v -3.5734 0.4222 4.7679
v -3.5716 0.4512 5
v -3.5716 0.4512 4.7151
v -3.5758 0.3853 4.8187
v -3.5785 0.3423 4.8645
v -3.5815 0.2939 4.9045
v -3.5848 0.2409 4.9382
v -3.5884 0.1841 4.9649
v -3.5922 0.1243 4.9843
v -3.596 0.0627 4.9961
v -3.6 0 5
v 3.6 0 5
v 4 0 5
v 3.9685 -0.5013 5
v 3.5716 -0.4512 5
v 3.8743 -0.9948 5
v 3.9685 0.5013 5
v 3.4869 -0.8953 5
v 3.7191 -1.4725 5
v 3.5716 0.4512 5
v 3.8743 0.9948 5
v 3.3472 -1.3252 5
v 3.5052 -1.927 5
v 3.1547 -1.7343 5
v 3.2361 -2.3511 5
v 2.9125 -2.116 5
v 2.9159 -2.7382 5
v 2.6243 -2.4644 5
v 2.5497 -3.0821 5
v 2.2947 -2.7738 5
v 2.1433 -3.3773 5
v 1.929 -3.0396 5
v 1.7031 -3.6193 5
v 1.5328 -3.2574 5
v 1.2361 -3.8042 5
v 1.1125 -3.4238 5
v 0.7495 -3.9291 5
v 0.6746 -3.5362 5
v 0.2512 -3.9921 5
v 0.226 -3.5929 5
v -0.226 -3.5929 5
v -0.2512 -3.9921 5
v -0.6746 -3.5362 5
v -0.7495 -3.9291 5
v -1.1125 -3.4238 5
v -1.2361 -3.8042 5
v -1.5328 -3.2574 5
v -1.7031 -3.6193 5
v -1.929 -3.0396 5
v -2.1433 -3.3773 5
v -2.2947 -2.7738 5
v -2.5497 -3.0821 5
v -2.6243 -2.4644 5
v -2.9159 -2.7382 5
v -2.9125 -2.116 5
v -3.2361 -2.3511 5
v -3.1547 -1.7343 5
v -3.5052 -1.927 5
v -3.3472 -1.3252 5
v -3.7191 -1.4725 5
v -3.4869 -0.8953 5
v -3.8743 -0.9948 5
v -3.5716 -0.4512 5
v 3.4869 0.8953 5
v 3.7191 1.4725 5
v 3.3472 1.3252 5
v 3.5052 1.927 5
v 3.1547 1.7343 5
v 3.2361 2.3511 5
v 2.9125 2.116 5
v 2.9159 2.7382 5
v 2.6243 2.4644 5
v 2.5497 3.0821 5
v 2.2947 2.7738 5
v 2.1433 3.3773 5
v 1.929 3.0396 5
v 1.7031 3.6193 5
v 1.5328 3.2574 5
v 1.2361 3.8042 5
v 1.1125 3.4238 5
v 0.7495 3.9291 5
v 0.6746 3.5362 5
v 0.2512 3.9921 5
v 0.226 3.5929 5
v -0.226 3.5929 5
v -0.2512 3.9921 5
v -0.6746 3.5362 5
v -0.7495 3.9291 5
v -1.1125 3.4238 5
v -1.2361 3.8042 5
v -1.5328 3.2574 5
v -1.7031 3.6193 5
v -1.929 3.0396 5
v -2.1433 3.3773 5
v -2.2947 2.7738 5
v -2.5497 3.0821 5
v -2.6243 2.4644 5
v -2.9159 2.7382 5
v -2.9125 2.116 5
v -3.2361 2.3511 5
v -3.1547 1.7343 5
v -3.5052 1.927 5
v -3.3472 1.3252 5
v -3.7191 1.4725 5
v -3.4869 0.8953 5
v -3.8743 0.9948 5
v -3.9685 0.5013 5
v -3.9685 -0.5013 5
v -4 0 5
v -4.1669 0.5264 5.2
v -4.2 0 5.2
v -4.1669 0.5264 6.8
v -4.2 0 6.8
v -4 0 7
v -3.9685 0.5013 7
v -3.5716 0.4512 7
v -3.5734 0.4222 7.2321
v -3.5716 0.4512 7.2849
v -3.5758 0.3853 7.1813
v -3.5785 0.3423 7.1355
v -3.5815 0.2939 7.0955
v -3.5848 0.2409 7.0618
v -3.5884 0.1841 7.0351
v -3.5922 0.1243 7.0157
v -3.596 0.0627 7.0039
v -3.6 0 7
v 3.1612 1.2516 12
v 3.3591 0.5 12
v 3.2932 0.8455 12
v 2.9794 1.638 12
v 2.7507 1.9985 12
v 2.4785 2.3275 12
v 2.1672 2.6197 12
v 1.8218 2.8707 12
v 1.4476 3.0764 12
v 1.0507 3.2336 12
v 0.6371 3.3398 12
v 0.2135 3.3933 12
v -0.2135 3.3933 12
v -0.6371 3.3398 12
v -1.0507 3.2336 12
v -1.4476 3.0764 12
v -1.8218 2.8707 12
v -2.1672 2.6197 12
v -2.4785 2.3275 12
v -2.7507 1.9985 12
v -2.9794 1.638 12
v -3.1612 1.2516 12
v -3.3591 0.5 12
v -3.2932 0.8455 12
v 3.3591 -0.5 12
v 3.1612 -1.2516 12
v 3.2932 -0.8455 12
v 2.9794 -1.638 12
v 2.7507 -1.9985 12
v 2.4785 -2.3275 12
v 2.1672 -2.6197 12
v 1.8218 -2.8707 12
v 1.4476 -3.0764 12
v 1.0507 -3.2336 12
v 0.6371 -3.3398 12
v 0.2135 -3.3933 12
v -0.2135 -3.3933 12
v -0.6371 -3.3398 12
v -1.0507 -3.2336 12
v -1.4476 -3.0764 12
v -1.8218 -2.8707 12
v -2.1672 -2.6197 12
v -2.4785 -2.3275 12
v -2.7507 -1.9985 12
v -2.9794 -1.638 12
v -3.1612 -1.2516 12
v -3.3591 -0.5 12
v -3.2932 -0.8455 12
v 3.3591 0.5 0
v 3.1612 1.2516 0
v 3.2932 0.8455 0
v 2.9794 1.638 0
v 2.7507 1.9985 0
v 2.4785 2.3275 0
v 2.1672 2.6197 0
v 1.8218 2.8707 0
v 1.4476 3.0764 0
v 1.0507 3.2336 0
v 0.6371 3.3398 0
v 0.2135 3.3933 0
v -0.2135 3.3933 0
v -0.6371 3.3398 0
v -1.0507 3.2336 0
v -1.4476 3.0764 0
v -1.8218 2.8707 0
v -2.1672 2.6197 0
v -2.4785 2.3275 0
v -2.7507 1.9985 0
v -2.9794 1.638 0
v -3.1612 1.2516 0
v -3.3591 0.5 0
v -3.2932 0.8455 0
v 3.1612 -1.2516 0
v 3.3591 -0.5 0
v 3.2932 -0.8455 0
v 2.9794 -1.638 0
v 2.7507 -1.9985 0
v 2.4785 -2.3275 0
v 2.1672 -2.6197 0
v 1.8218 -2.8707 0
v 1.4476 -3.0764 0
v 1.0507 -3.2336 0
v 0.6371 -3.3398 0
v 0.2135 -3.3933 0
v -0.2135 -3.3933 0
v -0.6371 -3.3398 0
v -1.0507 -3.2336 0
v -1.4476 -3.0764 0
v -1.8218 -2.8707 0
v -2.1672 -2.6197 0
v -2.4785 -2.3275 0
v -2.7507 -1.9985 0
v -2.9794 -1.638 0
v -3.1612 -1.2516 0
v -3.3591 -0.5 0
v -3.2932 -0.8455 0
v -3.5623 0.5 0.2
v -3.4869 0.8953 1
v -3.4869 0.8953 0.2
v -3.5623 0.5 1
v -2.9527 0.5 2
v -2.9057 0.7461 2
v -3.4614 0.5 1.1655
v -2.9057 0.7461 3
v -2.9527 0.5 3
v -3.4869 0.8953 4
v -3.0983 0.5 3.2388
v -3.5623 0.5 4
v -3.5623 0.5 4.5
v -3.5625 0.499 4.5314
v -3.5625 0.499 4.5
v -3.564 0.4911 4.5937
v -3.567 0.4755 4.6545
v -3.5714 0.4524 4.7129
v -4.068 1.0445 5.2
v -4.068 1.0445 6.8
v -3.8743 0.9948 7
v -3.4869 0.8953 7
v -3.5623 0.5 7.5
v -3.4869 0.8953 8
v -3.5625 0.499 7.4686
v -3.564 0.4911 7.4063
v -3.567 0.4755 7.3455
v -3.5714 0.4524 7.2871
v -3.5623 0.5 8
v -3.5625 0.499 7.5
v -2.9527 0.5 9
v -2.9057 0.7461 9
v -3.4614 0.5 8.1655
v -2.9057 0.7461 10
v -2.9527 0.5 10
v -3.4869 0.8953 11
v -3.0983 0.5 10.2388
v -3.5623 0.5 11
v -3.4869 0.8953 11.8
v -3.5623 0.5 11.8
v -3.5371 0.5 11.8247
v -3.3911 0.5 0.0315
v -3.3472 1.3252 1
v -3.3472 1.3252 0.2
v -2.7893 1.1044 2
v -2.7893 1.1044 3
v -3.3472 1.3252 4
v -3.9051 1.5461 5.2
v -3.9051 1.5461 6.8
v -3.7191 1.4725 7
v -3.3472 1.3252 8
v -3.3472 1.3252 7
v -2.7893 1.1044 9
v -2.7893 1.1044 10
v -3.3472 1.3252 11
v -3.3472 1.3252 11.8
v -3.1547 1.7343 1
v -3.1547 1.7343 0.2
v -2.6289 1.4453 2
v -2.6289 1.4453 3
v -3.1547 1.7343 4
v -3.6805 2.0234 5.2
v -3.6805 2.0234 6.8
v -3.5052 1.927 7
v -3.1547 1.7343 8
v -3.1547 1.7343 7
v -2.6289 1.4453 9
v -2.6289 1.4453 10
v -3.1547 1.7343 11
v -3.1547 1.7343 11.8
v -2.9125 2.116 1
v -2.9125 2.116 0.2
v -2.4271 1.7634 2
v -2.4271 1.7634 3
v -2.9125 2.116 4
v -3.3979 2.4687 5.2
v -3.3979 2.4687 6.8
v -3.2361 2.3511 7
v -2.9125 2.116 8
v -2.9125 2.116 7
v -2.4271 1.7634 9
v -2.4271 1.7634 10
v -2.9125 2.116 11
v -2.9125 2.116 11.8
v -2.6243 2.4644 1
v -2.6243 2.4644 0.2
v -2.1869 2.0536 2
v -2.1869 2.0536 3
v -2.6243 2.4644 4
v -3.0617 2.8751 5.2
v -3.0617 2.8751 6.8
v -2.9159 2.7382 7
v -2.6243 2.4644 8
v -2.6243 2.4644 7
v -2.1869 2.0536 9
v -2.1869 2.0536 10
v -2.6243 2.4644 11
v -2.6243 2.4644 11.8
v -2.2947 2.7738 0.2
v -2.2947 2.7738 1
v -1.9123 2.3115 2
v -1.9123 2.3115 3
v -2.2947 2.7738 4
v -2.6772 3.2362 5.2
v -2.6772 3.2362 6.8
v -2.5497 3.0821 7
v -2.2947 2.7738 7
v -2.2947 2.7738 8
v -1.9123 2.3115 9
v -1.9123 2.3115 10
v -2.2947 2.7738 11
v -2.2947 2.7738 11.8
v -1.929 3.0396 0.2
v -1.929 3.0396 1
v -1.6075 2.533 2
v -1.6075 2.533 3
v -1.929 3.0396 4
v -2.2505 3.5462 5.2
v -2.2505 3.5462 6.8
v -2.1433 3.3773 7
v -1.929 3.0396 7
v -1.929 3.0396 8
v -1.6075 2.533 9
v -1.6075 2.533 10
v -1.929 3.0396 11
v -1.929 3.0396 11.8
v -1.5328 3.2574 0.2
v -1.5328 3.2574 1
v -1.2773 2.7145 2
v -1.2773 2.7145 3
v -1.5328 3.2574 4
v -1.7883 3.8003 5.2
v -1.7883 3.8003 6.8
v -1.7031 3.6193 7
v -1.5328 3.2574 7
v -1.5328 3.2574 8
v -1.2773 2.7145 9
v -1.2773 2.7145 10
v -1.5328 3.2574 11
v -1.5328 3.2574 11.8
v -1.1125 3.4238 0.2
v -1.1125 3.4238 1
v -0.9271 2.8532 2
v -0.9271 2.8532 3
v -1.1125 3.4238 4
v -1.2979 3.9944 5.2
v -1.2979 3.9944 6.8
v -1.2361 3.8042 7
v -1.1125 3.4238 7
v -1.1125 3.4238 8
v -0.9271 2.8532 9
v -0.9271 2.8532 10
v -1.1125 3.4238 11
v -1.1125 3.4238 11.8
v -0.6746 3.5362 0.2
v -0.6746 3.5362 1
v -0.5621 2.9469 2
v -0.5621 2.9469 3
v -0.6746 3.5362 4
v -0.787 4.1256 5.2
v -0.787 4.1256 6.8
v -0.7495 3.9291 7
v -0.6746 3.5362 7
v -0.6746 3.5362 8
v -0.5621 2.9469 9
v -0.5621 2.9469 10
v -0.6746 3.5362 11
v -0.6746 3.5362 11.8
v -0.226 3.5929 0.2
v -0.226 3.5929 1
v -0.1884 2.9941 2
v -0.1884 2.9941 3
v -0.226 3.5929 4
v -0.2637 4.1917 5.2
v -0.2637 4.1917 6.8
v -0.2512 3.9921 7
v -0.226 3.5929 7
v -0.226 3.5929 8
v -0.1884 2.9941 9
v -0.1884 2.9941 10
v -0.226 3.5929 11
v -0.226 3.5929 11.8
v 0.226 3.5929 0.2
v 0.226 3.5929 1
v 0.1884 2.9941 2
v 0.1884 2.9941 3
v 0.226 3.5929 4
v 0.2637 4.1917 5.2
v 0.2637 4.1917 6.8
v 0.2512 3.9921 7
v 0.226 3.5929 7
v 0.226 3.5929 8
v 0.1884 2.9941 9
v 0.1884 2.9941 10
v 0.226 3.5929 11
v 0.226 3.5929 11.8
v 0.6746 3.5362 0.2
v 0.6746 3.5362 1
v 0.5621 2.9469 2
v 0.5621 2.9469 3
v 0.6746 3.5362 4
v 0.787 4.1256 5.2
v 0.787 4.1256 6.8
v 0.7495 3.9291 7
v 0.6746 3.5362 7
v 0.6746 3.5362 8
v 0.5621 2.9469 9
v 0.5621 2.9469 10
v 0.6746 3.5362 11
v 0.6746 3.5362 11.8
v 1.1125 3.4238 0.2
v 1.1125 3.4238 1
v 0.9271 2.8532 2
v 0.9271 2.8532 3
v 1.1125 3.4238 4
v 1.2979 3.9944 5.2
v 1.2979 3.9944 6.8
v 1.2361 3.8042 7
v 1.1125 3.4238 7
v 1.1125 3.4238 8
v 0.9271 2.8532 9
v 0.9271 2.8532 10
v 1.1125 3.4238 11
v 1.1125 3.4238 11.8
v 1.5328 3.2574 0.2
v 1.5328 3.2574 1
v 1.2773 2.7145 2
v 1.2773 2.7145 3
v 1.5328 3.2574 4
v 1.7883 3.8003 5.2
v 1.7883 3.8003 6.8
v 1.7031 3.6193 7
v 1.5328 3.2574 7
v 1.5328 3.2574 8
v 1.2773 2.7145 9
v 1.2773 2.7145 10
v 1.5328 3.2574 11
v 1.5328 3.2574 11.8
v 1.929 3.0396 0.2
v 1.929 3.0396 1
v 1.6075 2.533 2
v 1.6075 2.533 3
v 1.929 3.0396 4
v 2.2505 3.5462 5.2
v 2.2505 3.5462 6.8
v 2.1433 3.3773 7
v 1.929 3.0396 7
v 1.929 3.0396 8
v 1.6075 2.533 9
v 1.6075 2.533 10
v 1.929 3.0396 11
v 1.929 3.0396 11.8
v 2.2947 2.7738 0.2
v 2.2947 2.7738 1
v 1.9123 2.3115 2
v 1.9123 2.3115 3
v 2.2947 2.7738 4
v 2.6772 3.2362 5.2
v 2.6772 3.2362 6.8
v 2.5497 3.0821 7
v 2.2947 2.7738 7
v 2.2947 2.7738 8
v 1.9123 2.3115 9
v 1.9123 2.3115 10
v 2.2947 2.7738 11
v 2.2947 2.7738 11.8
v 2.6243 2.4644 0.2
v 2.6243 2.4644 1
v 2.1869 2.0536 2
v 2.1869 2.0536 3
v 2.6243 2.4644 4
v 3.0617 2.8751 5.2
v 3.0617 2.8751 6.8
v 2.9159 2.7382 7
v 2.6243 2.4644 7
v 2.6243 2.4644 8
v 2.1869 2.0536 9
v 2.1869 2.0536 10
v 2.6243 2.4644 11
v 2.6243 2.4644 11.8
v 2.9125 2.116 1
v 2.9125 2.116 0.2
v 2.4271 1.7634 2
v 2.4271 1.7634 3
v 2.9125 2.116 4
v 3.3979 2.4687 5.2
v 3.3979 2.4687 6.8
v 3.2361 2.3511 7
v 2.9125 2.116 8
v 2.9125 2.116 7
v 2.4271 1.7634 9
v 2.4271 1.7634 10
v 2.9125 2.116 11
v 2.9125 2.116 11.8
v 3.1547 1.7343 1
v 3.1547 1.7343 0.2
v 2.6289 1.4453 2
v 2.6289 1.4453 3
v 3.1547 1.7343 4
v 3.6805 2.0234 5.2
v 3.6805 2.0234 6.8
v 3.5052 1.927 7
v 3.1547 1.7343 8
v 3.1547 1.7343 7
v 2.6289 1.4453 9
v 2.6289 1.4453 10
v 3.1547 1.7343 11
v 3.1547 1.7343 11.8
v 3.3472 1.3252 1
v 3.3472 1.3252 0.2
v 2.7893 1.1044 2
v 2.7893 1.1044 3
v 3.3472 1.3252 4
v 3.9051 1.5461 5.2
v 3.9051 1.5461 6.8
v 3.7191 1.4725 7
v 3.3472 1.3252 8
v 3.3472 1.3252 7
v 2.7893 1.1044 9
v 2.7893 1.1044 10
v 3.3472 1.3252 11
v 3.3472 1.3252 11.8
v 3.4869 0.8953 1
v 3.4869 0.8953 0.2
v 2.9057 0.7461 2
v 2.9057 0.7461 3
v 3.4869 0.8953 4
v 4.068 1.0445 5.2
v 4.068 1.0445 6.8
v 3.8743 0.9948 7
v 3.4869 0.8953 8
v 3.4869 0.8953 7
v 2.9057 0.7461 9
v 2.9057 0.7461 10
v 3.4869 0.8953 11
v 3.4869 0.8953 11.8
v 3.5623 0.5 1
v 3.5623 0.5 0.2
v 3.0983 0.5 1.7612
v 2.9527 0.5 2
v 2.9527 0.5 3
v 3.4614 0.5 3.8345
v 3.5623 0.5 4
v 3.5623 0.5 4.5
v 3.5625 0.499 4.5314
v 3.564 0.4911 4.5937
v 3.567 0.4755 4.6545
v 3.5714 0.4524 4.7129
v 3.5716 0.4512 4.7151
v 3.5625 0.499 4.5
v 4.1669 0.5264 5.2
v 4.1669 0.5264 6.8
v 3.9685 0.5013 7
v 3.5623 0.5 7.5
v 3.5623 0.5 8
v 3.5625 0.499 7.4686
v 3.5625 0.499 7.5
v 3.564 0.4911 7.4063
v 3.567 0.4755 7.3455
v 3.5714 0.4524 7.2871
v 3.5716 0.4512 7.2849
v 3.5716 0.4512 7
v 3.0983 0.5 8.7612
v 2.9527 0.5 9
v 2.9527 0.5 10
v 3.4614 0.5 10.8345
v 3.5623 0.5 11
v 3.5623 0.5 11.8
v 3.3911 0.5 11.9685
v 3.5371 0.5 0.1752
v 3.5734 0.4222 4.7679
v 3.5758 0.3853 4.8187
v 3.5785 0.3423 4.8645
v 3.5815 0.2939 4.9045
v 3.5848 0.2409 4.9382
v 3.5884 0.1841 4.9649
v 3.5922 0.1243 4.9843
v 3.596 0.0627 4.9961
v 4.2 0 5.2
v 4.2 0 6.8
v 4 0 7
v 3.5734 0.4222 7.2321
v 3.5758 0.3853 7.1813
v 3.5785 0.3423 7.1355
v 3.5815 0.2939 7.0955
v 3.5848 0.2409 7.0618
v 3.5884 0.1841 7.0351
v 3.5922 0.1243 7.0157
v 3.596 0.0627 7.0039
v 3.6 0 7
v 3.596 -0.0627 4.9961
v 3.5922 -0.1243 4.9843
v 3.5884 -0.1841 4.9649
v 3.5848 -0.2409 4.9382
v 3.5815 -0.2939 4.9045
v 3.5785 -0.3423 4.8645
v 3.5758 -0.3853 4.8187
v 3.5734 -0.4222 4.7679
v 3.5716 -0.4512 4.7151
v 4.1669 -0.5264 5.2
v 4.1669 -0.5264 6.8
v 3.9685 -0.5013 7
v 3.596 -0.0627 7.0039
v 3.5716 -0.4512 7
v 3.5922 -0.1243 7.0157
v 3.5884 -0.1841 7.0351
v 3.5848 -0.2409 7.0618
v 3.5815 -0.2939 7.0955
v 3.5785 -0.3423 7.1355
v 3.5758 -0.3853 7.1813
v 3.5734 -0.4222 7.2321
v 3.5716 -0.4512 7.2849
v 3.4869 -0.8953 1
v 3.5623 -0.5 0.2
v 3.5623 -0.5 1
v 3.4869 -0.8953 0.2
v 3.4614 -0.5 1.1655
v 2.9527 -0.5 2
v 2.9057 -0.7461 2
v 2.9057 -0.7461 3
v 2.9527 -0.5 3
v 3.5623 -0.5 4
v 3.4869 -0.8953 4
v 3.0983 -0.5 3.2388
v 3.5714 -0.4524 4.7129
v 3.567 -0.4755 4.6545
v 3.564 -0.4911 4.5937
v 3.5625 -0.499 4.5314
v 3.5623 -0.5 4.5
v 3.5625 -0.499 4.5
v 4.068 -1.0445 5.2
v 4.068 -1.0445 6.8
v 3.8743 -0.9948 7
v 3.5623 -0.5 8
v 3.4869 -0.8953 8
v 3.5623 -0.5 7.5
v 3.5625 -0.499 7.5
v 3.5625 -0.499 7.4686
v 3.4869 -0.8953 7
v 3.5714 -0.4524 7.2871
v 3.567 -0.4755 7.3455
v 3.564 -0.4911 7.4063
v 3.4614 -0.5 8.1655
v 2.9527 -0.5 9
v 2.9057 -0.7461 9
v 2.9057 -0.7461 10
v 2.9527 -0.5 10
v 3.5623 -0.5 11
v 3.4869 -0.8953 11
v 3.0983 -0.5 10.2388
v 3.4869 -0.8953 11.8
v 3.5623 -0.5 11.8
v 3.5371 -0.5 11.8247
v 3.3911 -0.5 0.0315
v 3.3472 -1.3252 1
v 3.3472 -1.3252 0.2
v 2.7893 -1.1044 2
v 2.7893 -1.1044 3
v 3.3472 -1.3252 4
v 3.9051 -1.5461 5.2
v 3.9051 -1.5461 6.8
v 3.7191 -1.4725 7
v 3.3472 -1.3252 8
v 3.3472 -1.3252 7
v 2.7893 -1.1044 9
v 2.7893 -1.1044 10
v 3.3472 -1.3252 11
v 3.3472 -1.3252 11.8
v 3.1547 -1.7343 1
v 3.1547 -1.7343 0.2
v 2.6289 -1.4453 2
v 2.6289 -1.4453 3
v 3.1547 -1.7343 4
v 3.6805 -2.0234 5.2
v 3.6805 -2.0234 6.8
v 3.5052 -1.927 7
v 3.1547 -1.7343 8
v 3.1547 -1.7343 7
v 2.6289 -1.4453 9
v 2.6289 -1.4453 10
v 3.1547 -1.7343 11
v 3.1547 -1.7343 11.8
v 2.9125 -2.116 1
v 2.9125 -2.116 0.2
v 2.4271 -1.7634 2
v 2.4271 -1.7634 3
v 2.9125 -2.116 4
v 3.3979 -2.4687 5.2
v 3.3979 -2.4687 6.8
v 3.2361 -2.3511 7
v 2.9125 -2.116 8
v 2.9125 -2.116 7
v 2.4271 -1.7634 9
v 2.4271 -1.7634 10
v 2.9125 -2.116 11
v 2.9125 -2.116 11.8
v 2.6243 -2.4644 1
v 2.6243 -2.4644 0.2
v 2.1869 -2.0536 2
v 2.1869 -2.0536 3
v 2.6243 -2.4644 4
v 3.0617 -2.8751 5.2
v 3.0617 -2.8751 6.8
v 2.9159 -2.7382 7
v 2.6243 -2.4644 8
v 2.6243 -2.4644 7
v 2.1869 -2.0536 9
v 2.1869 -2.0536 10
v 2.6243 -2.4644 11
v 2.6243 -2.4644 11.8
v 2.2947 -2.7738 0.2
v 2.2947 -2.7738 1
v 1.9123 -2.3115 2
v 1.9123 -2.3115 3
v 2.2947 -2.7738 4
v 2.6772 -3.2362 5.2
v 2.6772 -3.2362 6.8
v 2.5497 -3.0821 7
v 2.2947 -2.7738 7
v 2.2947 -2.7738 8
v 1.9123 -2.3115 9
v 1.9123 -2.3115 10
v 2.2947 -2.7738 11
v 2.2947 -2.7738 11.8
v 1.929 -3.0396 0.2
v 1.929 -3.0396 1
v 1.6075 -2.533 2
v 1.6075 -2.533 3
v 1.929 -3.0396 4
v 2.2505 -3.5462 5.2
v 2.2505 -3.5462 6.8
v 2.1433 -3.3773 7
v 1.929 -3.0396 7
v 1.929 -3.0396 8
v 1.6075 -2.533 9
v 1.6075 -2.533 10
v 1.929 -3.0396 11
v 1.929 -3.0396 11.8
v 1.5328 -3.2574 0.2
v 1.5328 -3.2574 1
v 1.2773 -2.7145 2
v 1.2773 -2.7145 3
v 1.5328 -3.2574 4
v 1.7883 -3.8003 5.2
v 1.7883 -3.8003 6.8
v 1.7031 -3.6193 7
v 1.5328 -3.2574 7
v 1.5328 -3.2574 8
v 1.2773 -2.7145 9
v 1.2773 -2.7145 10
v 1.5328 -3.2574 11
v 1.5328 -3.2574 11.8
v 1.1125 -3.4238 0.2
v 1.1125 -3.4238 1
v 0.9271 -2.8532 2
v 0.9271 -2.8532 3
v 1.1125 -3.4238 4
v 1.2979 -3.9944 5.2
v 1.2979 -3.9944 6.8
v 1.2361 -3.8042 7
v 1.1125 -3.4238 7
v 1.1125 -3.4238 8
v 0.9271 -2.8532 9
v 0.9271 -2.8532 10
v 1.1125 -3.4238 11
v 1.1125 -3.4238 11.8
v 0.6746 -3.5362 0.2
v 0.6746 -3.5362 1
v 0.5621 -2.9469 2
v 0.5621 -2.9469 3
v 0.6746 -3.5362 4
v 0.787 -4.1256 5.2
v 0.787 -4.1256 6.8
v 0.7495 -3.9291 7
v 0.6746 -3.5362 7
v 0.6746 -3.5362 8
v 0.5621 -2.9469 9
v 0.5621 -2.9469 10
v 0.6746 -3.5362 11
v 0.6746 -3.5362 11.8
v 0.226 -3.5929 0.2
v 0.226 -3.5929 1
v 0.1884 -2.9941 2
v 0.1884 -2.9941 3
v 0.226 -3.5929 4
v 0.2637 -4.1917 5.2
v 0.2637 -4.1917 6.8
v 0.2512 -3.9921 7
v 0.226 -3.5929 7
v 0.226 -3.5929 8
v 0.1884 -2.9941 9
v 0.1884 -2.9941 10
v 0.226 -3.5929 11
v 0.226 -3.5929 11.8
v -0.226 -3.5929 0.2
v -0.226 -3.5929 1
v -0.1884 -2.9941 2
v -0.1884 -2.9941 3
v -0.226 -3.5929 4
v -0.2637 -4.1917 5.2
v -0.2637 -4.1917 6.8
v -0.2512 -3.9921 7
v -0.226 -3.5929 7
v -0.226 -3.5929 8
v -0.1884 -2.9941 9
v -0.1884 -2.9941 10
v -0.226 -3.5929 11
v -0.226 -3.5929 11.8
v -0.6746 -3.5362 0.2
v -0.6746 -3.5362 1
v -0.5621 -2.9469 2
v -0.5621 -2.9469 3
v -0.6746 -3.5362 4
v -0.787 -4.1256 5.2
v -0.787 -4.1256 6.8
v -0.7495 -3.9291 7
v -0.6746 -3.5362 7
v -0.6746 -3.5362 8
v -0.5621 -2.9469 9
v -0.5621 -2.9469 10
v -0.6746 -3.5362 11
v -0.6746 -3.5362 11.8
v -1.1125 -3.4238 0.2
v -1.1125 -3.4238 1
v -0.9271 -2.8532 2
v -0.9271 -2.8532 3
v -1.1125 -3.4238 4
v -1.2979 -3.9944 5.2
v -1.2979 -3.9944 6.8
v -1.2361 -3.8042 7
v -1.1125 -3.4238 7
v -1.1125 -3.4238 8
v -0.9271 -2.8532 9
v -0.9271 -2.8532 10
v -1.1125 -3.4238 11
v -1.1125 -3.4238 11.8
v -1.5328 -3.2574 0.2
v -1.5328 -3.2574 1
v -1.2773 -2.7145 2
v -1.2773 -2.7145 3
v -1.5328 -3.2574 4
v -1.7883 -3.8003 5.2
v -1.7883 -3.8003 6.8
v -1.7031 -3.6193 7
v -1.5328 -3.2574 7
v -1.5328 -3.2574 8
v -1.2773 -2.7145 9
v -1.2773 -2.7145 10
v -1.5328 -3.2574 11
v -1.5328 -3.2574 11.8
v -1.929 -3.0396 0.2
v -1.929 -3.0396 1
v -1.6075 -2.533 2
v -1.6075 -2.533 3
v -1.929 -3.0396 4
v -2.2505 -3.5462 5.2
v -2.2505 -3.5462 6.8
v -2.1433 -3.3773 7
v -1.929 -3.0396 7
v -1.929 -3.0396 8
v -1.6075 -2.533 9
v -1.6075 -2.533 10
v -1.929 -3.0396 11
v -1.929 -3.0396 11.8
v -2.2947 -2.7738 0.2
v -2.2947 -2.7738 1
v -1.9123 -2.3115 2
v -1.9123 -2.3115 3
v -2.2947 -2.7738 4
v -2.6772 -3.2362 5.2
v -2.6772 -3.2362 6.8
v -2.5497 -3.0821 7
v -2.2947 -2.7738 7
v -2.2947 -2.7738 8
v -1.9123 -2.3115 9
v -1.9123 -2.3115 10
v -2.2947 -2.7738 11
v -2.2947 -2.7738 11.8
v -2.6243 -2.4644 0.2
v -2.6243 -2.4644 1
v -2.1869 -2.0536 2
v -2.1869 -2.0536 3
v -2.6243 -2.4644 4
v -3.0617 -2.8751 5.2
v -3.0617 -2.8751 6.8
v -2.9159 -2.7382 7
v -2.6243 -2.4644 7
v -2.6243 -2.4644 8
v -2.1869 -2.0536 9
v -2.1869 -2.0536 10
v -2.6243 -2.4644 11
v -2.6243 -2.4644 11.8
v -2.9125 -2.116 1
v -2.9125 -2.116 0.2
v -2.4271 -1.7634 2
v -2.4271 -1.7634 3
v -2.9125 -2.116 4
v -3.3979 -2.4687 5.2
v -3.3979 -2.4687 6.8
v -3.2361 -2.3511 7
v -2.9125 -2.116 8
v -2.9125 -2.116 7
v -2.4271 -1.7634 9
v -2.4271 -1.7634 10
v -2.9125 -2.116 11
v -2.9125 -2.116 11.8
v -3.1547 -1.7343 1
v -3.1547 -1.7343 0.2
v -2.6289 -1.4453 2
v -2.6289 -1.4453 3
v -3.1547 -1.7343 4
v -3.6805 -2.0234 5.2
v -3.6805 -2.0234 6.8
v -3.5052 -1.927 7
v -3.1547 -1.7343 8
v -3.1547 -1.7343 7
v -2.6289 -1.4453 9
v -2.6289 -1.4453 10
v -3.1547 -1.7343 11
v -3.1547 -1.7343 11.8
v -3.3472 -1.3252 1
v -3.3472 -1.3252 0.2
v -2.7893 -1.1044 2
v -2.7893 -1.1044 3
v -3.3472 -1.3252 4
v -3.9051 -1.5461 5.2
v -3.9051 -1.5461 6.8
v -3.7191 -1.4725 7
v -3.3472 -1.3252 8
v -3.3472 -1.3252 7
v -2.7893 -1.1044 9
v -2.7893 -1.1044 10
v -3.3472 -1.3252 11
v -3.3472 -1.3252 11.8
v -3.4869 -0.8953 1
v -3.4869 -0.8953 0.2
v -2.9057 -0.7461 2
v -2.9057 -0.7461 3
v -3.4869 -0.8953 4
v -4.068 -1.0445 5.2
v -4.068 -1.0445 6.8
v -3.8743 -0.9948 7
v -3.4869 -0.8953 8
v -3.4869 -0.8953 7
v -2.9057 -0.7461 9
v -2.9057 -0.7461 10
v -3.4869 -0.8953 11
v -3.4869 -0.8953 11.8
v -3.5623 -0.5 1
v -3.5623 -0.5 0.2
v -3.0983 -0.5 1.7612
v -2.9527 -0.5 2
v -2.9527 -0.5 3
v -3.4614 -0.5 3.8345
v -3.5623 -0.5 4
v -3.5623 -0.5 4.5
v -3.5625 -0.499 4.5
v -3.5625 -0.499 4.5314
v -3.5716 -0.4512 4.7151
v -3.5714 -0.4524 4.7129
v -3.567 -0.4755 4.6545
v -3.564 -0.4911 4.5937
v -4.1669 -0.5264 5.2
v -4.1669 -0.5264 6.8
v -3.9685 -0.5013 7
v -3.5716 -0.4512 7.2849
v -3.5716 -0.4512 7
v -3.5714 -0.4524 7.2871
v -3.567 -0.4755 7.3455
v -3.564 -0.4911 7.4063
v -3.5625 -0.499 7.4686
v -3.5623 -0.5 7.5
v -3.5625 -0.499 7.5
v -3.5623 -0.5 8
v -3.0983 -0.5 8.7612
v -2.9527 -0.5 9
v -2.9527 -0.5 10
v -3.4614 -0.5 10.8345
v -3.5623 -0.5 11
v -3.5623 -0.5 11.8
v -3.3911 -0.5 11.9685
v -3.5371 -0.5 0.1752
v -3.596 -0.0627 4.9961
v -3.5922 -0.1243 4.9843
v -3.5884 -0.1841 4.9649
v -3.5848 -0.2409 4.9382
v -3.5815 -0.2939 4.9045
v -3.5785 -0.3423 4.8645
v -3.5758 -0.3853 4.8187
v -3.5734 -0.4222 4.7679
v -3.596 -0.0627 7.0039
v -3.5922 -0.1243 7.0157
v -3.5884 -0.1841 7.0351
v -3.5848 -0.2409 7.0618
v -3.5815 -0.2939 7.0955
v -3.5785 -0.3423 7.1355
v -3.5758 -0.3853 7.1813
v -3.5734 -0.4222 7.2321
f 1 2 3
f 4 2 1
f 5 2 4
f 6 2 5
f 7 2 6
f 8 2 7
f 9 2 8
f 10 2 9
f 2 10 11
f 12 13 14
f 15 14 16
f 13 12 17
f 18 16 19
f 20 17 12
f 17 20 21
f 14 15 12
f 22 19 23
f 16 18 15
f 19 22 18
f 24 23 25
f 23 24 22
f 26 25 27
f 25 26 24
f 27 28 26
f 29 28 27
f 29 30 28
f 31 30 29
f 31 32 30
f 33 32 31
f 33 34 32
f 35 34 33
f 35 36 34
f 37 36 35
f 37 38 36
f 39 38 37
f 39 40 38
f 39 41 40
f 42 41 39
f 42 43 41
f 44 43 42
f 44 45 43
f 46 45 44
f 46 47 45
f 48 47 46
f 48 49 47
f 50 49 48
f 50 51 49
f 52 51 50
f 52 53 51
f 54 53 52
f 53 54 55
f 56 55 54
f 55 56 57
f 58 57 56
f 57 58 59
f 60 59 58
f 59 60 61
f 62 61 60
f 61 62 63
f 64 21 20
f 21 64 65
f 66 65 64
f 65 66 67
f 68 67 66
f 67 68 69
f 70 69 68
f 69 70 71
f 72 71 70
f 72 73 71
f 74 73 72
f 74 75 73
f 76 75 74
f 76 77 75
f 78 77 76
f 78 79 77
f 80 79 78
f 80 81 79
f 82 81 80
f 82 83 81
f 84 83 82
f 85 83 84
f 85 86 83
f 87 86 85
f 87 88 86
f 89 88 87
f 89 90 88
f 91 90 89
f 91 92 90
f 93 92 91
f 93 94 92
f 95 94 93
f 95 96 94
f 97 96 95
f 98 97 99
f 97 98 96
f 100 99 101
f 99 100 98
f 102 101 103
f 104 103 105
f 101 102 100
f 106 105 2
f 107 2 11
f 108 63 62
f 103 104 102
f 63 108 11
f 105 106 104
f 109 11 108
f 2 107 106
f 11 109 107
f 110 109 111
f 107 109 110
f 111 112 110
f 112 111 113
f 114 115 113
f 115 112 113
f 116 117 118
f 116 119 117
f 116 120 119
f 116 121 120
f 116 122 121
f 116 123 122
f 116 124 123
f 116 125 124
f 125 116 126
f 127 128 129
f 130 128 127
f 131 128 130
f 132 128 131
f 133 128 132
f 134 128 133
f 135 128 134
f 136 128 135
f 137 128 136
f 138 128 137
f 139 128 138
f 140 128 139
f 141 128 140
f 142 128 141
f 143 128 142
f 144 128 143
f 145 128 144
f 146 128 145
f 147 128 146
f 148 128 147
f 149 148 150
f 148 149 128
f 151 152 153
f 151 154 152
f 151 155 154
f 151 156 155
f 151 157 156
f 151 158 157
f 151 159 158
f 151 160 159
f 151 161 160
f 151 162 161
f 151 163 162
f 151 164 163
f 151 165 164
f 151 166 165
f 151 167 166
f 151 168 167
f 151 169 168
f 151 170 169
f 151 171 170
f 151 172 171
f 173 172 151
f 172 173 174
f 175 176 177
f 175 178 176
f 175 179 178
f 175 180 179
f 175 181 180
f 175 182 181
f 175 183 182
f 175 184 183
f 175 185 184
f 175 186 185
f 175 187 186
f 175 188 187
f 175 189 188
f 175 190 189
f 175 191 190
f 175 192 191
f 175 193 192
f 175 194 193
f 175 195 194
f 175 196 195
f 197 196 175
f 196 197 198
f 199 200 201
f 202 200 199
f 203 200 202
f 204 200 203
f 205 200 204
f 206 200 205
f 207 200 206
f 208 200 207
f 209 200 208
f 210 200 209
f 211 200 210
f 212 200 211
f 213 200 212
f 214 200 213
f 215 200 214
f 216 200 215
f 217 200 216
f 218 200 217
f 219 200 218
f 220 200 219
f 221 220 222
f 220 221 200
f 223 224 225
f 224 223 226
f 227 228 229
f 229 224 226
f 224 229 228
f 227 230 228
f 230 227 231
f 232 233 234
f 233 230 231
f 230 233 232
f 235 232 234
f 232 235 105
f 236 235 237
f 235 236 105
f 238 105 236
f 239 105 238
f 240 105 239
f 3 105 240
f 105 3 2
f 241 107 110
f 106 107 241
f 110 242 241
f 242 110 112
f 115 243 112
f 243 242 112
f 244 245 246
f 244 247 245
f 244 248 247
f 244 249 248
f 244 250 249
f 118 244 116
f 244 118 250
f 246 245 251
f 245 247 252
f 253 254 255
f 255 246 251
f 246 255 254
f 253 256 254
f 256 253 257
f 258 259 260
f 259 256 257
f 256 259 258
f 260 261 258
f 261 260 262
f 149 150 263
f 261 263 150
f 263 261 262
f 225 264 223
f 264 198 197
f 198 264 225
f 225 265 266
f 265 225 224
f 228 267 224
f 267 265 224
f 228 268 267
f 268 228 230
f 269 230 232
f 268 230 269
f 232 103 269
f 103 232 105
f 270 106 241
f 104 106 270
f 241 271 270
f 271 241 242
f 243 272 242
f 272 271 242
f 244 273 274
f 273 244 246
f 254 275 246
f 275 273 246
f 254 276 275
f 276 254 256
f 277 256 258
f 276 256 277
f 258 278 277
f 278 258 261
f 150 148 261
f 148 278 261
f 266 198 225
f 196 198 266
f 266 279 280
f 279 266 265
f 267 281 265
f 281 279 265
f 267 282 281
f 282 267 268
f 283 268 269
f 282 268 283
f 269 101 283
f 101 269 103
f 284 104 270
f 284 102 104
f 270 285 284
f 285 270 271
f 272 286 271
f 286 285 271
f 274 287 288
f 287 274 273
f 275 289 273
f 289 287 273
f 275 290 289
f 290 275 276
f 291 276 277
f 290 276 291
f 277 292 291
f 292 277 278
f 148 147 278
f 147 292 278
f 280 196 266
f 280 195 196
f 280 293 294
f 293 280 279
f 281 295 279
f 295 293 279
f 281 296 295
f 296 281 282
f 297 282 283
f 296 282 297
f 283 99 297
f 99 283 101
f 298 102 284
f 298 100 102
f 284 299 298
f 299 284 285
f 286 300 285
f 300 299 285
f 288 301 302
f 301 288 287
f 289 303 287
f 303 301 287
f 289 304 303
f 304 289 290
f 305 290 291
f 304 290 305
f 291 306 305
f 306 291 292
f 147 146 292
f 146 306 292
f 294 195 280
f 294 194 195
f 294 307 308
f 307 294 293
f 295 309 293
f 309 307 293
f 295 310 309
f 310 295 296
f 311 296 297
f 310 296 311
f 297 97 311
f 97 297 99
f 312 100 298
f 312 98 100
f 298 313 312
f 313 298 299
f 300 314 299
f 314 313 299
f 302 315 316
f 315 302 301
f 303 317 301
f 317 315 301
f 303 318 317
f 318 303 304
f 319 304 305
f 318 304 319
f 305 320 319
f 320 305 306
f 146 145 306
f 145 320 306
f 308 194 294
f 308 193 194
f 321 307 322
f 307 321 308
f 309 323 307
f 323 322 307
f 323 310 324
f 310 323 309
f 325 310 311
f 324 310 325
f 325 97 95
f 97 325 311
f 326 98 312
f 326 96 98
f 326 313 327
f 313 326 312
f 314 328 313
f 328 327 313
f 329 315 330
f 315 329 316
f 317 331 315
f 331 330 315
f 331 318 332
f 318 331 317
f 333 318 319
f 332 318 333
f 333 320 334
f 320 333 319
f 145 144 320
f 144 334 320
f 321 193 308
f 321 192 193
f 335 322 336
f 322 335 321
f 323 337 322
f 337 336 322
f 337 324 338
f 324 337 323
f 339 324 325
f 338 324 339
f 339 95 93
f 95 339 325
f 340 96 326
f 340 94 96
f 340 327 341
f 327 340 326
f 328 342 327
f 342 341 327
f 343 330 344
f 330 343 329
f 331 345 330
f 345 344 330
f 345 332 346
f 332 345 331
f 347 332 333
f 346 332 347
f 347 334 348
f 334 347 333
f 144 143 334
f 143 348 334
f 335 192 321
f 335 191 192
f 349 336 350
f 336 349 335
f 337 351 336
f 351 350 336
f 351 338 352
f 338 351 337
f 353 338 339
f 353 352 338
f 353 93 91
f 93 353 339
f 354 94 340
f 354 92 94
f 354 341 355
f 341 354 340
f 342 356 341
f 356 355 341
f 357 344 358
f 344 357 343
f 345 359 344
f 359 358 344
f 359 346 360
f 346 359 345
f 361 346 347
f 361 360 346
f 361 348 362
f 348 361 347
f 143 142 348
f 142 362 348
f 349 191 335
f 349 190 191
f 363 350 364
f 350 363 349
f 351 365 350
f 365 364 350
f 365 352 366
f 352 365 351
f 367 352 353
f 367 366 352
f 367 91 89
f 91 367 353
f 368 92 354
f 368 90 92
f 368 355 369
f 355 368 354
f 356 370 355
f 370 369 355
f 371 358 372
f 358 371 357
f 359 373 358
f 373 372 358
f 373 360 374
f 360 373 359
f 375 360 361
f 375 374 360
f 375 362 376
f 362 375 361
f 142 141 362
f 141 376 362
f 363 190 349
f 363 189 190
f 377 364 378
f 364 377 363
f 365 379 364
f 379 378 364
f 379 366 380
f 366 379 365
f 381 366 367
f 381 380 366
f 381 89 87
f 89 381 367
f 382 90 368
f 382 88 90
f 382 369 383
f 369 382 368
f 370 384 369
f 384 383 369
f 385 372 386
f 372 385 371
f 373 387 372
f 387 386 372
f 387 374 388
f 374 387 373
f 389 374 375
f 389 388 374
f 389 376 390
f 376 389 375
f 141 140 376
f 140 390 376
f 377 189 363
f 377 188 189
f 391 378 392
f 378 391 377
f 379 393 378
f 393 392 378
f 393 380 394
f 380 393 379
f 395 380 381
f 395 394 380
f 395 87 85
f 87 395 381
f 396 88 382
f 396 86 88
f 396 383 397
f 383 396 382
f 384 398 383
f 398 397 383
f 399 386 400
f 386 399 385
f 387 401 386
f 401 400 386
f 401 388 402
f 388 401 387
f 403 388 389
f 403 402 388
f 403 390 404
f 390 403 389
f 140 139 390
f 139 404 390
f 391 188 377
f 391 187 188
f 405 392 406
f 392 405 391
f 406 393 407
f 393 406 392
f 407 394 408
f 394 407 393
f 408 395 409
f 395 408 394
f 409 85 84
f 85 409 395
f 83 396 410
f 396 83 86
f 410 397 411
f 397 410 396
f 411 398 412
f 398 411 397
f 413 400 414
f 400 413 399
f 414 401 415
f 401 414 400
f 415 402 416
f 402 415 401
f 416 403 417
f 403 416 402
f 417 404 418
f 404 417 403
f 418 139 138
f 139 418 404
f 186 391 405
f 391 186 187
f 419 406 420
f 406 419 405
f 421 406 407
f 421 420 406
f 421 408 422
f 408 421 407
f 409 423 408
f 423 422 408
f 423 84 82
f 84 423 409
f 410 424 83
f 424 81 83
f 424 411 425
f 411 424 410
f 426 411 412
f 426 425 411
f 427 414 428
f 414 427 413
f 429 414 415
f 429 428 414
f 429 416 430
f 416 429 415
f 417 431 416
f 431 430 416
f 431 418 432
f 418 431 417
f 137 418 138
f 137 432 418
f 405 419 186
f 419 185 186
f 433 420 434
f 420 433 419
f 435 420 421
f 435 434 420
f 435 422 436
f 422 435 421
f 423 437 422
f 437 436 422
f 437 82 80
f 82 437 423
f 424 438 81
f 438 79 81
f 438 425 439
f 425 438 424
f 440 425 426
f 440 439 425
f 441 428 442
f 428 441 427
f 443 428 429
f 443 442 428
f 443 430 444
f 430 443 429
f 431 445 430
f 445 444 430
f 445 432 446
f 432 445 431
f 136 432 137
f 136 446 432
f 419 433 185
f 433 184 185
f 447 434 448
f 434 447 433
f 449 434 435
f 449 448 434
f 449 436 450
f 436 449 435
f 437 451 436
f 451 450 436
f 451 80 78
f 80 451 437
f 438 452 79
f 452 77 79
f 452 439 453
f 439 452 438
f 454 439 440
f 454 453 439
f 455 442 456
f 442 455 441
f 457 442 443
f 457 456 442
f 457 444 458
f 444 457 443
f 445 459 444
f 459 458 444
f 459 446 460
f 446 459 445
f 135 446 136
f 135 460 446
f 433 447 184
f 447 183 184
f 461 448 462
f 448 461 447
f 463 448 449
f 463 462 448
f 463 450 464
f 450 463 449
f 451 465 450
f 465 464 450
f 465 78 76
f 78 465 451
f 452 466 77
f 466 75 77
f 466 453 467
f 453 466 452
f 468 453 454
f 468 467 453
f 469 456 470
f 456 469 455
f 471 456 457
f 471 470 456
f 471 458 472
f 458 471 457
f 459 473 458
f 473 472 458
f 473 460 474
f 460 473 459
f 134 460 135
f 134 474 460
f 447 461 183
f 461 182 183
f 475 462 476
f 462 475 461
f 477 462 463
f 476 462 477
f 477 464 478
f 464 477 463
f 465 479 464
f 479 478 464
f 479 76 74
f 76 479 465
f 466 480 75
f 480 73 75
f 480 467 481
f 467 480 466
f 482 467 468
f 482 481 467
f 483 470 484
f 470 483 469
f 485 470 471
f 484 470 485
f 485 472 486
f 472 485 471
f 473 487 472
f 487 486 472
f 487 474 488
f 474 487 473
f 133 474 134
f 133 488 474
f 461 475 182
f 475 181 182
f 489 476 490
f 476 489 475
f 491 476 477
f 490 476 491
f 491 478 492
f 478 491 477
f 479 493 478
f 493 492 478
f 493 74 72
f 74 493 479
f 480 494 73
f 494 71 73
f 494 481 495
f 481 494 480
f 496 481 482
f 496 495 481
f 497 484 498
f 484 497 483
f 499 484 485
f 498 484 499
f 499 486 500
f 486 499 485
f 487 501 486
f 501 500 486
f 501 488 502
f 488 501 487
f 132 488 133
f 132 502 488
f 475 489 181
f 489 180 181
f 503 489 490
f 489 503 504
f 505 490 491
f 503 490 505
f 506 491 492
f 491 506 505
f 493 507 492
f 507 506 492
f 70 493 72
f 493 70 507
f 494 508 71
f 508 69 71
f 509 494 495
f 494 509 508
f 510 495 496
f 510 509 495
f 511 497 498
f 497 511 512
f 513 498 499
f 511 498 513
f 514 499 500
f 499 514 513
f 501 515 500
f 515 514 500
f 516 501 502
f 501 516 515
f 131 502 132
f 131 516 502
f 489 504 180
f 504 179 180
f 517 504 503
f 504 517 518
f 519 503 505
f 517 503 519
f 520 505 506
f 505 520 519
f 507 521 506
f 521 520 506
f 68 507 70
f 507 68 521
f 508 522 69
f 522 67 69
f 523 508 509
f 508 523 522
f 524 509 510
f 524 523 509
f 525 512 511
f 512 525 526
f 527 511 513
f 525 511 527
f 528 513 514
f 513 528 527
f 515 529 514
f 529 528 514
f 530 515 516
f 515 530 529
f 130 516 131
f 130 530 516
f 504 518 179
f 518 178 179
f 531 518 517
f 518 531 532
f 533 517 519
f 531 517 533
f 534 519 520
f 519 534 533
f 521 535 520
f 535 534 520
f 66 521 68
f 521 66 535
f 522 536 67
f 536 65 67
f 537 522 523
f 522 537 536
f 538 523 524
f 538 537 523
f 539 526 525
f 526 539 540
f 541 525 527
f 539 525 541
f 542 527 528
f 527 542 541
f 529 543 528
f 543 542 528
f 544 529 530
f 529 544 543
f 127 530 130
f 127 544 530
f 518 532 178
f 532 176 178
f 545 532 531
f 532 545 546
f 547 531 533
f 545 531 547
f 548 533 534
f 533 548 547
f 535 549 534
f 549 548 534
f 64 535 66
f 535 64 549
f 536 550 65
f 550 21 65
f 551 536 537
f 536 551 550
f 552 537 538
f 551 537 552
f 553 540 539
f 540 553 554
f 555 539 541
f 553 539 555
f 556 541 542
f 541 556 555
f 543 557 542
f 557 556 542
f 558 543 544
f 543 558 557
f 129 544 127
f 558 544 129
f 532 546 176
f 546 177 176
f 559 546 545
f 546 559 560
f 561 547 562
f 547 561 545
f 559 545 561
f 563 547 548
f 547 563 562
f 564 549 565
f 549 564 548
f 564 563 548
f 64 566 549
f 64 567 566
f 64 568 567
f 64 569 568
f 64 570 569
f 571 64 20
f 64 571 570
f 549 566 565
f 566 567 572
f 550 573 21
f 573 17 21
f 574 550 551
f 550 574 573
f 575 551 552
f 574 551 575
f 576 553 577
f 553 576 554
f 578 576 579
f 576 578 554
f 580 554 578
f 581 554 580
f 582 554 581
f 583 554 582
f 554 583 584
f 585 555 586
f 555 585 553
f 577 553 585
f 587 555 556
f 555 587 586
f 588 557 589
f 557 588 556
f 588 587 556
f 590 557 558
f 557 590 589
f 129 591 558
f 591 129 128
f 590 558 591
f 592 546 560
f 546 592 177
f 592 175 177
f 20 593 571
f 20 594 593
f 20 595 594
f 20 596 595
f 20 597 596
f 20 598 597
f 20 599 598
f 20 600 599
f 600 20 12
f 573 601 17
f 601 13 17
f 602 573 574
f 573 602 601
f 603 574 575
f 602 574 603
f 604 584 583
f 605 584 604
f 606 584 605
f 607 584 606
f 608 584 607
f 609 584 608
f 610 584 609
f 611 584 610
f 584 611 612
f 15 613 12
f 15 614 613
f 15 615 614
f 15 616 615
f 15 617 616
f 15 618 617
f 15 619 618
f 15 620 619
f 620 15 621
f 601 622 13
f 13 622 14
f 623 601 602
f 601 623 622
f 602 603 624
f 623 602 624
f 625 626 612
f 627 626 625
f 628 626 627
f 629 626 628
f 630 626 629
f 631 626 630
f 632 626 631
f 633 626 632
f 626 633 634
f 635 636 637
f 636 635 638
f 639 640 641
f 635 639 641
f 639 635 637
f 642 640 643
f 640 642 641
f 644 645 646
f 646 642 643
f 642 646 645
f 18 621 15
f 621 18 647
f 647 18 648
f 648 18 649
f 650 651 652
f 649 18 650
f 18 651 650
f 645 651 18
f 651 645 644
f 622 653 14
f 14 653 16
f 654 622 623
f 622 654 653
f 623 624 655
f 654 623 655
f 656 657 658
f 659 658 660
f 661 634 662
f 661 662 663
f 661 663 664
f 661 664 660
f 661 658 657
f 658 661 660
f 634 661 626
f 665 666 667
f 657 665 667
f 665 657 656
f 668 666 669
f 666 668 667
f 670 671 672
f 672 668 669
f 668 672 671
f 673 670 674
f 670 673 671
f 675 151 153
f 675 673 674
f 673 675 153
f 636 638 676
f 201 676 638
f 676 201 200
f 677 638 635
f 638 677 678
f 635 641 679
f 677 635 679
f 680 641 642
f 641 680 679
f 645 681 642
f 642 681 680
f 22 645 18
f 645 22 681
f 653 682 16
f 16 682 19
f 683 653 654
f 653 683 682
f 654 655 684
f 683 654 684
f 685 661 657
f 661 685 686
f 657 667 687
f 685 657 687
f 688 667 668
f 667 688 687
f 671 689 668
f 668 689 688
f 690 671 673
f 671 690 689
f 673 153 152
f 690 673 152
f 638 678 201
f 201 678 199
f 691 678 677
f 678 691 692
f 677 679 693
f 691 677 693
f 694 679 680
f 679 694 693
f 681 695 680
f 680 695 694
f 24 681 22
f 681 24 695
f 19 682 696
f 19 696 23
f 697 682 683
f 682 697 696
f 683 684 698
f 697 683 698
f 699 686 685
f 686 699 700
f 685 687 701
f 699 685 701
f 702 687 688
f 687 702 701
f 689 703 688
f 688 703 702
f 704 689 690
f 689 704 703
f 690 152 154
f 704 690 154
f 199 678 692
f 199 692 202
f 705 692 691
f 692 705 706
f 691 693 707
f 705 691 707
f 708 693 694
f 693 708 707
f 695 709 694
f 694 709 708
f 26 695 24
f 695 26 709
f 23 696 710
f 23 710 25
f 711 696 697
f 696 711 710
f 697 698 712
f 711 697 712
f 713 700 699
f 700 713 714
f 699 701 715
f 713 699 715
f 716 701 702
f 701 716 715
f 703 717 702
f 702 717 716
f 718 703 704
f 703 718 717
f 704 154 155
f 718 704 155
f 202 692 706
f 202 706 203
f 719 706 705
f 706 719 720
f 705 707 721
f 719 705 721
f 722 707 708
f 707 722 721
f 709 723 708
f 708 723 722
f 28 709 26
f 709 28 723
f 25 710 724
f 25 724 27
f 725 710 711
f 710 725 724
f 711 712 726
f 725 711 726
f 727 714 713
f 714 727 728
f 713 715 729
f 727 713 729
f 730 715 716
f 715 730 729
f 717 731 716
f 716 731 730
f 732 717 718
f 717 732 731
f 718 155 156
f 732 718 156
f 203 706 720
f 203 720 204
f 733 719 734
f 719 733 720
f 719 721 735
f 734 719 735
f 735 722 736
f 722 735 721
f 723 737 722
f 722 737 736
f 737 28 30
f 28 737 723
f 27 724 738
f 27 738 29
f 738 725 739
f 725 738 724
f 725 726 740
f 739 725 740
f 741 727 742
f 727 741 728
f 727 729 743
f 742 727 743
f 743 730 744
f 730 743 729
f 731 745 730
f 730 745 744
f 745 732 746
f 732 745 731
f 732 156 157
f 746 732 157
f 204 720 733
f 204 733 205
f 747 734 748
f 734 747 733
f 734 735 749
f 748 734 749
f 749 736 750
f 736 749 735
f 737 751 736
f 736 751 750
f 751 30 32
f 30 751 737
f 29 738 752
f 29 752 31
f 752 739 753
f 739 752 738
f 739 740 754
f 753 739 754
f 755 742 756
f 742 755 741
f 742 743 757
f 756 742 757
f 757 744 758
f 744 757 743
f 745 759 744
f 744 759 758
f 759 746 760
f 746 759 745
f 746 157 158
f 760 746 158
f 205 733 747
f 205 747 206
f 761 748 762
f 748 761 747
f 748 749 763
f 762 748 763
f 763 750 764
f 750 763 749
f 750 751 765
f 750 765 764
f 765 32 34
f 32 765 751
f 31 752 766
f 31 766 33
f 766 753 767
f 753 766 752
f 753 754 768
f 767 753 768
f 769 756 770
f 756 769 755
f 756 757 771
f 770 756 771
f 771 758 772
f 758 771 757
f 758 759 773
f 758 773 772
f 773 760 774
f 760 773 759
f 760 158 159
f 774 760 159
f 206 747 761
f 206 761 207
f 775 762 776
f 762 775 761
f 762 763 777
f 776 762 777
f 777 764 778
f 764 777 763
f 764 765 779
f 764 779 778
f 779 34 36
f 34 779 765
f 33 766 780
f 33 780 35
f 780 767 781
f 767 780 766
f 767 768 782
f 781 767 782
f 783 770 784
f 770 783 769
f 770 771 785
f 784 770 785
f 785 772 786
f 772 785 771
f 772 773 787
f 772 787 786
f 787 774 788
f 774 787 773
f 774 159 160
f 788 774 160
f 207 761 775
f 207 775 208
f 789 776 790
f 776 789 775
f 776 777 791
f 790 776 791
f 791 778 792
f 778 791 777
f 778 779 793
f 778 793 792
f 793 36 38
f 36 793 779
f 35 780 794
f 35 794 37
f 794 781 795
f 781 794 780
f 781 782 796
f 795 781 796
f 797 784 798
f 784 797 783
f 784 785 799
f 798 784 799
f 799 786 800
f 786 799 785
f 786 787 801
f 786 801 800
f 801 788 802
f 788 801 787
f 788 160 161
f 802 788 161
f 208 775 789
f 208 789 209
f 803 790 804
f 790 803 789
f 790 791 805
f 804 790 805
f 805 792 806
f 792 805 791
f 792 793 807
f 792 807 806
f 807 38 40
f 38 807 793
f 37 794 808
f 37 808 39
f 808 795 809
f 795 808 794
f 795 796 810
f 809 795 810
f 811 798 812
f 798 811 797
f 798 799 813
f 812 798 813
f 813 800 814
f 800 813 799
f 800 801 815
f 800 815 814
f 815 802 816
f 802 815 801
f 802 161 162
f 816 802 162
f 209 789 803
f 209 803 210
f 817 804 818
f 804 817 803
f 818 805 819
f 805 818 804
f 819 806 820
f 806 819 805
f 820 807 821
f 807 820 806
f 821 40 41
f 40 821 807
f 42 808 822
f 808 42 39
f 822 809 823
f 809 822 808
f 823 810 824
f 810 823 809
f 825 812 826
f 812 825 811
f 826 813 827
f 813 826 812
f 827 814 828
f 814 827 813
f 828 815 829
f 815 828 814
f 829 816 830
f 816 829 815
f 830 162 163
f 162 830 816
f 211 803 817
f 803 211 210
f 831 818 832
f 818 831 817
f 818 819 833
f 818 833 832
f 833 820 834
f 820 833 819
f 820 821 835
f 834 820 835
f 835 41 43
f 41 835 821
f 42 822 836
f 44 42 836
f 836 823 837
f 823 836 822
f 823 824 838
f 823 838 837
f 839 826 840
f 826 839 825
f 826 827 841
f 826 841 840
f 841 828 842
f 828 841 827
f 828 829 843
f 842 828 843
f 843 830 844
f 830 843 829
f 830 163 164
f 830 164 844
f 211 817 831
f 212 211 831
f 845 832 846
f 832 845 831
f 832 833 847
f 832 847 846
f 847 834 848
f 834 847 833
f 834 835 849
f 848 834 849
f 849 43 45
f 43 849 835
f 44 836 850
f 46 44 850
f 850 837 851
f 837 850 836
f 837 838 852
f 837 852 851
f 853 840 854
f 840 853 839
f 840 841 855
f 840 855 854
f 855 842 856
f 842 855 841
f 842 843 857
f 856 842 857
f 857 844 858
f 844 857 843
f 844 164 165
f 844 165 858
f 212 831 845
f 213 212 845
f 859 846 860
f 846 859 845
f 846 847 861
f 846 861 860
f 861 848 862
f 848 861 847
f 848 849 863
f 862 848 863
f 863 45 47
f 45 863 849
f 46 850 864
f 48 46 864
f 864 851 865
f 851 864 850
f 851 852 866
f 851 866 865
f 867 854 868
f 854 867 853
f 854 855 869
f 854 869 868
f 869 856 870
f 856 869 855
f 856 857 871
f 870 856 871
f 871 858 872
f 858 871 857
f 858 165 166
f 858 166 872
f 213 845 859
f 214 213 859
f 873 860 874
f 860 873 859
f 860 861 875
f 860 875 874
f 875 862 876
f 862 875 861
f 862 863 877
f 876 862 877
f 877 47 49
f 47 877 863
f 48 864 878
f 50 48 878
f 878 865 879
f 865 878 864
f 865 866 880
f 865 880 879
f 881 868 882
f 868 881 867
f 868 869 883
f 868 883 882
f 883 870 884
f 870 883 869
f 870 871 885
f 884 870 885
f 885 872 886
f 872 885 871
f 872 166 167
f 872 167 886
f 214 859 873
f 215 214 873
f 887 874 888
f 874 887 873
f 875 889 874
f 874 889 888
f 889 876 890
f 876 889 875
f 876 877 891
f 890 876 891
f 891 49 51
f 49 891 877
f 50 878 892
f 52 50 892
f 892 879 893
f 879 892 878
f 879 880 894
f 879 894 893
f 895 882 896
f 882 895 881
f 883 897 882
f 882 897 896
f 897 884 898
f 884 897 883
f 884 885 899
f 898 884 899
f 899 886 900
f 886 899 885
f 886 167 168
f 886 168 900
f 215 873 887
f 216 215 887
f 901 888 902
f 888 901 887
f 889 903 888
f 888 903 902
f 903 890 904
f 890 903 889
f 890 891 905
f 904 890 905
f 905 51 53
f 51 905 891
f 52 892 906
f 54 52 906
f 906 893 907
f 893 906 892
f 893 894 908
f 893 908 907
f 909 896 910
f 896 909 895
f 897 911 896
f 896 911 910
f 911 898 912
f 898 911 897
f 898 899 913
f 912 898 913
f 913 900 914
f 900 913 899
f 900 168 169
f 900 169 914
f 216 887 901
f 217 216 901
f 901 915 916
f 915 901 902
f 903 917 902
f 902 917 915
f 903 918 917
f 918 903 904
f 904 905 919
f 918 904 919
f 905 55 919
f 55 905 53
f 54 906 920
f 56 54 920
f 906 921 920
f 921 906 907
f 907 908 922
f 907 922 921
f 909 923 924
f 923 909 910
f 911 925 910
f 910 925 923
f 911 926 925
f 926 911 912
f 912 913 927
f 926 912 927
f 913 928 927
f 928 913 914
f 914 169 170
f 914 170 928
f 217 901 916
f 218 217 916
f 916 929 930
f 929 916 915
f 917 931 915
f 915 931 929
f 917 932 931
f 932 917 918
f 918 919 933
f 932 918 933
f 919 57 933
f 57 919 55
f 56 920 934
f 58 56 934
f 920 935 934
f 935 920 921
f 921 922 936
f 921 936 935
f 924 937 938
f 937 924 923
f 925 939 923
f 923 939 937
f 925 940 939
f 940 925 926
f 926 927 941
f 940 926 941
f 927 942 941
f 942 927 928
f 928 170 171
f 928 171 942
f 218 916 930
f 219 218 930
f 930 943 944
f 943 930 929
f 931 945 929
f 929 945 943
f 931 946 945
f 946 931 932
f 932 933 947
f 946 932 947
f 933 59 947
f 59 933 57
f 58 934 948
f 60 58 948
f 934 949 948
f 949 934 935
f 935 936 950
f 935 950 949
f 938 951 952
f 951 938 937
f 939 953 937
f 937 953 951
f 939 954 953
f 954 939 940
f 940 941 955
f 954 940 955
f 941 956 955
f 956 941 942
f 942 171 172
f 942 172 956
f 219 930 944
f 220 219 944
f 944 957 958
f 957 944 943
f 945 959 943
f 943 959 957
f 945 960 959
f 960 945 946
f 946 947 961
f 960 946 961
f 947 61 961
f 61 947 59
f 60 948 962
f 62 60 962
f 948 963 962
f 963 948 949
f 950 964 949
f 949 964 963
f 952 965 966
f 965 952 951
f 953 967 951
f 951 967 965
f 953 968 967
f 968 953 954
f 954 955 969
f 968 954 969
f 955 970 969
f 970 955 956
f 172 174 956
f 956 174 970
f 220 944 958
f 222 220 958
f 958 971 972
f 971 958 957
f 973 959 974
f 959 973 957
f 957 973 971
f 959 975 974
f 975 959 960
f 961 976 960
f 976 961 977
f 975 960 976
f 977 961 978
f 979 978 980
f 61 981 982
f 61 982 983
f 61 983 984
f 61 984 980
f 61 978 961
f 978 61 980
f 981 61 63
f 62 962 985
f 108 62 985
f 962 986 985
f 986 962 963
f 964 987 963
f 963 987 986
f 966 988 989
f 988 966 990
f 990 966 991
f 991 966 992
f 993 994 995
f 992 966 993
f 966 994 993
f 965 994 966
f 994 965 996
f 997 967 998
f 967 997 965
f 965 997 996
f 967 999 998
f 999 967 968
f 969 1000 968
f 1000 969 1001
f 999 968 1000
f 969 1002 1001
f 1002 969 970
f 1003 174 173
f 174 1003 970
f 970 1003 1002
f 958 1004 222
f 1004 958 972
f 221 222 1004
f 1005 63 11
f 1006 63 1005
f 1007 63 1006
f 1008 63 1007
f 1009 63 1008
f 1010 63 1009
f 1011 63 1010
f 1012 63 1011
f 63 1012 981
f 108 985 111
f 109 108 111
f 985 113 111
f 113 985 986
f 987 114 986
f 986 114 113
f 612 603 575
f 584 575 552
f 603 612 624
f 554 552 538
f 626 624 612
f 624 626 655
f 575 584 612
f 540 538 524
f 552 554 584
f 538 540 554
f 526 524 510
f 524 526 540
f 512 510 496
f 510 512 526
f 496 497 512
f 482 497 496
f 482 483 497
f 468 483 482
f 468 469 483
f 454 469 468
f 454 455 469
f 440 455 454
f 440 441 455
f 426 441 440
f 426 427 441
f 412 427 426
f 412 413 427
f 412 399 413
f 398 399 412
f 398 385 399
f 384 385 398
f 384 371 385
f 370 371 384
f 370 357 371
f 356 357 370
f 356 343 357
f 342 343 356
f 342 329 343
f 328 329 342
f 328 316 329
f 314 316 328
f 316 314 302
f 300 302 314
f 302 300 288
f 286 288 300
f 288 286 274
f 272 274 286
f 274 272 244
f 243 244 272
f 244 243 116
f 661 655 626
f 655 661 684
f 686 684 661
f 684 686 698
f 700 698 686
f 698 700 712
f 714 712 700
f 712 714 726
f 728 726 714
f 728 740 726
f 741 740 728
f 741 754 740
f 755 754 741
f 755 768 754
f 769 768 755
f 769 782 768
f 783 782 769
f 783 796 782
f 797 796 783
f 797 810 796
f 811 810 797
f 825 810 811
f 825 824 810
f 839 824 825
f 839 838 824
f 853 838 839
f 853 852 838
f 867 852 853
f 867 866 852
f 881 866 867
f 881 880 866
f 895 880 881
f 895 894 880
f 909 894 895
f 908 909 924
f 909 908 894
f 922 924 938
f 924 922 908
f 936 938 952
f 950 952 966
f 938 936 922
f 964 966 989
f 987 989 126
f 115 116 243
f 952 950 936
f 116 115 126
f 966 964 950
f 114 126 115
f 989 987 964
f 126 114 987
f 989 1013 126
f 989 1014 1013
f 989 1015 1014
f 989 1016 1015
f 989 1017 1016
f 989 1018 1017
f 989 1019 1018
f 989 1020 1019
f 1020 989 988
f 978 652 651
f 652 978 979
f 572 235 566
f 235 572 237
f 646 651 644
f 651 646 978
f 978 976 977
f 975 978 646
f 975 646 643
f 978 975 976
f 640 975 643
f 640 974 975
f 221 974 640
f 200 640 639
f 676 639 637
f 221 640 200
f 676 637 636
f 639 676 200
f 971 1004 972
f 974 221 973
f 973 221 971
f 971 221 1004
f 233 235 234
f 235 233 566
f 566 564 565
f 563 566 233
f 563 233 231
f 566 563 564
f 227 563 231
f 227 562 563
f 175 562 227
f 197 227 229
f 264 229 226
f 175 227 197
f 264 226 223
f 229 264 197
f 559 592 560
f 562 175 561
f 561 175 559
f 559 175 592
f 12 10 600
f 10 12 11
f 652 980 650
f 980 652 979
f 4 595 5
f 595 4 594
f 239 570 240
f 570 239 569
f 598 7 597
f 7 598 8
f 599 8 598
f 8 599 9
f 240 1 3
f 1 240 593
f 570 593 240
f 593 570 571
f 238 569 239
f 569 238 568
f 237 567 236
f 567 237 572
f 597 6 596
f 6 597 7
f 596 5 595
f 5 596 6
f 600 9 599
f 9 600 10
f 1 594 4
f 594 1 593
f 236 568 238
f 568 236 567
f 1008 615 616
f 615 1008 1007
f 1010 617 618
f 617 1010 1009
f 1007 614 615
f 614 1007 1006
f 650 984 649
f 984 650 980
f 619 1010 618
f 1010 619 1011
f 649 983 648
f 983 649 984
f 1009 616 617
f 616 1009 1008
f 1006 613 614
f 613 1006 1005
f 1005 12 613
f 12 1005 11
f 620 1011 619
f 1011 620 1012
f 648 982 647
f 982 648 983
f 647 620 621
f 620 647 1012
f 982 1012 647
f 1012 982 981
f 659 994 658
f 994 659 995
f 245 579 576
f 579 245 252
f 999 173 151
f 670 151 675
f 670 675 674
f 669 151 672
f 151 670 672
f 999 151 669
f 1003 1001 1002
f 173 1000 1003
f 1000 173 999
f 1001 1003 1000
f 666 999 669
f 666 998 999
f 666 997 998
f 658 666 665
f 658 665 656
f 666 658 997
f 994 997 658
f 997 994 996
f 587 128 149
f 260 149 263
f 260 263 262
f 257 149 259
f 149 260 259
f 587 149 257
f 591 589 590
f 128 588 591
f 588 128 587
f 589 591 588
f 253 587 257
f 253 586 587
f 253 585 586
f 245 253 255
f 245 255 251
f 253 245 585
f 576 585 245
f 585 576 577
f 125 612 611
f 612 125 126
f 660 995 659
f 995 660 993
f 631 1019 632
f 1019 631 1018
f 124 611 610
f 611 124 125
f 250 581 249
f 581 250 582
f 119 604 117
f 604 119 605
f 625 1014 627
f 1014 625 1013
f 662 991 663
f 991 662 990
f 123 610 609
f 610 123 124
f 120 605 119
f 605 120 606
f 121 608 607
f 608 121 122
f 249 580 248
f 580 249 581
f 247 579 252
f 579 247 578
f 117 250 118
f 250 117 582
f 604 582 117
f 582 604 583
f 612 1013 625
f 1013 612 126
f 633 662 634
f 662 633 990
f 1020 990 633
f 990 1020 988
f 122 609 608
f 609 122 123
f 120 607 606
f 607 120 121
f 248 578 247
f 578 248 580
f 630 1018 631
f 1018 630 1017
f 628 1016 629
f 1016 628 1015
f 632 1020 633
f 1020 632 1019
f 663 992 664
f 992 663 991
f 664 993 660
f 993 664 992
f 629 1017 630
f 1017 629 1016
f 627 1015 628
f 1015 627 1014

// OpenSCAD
$fn = 50;

size = 5;
radius = 3;
length = size * 2 + 2;
chamfer = .6;

difference() {
  rotate_extrude() {
    polygon(
      [
        [0, 0],
        [radius + chamfer - .2, 0],
        [radius + chamfer, .2],
        [radius + chamfer, 1],
        [radius, 2],
        [radius, 3],
        [radius + chamfer, 4],
        [radius + chamfer, 5],
        [radius + chamfer * 2 - .2, 5],
        [radius + chamfer * 2, 5.2],
        [radius + chamfer * 2, length - 5.2],
        [radius + chamfer * 2 - .2, length - 5],
        [radius + chamfer, length - 5],
        [radius + chamfer, length - 4],
        [radius, length - 3],
        [radius, length - 2],
        [radius + chamfer, length - 1],
        [radius + chamfer, length - .2],
        [radius + chamfer - .2, length],
        [0, length],
      ]
    );
  }

  translate([0, 0, 0]) cube([(radius + chamfer) * 2, 1, 9], center=true);
  translate([0, 0, 4.5]) rotate([0, 90, 0]) cylinder(d=1, h=(radius + chamfer) * 2, center=true);
  translate([0, 0, length]) cube([(radius + chamfer) * 2, 1, 9], center=true);
  translate([0, 0, length - 4.5]) rotate([0, 90, 0]) cylinder(d=1, h=(radius + chamfer) * 2, center=true);
}
